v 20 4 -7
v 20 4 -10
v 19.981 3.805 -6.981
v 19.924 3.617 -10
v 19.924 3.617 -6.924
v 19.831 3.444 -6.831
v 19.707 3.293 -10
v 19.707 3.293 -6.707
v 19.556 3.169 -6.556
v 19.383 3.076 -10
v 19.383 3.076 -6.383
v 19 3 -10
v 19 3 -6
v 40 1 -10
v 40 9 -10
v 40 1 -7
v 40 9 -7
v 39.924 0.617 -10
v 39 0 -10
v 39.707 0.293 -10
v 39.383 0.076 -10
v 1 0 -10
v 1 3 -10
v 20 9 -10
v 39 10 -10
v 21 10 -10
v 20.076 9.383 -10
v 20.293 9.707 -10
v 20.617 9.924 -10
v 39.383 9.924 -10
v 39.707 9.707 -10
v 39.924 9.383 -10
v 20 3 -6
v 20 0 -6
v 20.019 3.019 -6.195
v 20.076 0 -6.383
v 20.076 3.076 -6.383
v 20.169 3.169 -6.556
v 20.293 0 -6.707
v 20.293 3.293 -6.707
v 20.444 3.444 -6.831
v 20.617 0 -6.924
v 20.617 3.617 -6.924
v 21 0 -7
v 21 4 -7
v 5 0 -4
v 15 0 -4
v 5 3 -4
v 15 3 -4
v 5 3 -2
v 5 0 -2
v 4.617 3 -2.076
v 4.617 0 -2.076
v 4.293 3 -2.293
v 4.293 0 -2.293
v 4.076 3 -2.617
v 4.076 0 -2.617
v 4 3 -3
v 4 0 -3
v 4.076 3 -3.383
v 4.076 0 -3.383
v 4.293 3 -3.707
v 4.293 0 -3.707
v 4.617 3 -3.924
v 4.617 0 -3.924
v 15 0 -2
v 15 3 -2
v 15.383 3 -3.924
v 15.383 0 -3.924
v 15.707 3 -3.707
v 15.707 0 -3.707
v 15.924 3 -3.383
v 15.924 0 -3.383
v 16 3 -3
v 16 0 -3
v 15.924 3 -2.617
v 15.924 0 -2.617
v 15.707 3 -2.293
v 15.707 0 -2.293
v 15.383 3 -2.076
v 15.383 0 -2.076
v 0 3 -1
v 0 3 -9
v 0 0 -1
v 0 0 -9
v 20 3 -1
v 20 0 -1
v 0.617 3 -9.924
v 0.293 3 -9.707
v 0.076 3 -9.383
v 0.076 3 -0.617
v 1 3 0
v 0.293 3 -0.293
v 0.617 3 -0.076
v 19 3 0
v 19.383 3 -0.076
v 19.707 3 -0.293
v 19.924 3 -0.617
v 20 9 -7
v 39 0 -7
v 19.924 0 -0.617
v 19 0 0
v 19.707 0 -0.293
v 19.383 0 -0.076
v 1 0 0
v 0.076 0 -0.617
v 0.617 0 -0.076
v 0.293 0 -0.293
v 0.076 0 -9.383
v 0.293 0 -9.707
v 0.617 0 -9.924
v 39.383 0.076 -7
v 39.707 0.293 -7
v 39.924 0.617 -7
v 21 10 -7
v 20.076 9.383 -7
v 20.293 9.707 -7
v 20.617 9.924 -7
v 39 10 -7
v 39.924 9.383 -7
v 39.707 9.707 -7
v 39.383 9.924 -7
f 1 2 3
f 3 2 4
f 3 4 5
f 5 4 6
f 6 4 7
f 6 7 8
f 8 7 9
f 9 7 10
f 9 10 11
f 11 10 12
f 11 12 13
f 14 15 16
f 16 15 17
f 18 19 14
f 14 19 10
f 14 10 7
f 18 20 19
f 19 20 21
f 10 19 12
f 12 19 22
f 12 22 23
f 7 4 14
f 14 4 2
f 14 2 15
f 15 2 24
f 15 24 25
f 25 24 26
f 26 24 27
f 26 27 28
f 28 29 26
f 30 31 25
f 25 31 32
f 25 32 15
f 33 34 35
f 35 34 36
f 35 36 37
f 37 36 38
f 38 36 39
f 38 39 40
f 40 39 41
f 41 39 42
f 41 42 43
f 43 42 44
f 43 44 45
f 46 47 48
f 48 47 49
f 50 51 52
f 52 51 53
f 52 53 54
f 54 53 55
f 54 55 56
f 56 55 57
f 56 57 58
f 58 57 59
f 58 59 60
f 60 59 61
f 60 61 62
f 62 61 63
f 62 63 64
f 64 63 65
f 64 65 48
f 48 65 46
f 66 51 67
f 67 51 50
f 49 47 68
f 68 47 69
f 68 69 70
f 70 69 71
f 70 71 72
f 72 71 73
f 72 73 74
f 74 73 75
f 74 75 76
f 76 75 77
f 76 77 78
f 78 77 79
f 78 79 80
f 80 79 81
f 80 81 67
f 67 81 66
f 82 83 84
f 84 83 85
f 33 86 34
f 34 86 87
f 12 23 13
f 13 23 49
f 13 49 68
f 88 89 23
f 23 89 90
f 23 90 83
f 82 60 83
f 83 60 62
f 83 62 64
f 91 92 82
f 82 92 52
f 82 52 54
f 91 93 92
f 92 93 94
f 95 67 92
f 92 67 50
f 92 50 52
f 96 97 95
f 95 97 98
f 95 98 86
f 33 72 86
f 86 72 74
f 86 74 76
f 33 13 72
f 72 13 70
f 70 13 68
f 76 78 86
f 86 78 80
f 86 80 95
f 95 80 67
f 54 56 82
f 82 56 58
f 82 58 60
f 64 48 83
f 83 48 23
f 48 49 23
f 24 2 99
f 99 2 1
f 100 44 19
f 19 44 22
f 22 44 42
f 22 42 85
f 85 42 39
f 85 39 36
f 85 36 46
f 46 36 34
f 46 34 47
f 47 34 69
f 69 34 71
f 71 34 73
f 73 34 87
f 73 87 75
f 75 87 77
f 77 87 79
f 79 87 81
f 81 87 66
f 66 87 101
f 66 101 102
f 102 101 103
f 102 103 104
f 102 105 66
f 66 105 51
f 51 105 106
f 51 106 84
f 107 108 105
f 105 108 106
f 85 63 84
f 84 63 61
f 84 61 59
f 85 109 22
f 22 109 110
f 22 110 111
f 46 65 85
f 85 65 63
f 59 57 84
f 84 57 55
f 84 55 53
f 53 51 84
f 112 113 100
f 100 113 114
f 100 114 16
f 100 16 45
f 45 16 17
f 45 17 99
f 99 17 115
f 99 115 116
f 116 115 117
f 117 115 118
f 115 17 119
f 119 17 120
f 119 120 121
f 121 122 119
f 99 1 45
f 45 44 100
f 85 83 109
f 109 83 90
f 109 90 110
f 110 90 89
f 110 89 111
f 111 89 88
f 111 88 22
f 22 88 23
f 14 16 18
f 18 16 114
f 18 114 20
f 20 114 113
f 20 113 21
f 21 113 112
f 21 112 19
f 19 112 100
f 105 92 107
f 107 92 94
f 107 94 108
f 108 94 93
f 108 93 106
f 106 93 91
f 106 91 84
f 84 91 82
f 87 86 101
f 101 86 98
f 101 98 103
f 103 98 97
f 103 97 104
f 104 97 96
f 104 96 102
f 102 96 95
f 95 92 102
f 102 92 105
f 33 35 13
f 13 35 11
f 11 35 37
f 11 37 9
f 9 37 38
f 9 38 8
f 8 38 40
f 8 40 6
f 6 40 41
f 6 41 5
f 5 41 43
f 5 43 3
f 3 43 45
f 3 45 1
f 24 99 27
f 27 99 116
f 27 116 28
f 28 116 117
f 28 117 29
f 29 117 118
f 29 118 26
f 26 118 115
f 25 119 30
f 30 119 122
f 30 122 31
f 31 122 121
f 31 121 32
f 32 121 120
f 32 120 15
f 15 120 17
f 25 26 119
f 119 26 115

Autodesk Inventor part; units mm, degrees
ref_plane "YZ Plane" through (0, 0, 0) normal (1, 0, 0) x (0, 1, 0)
ref_plane "XZ Plane" through (0, 0, 0) normal (0, 1, 0) x (-1, 0, 0)
ref_plane "XY Plane" through (0, 0, 0) normal (0, 0, 1) x (1, 0, 0)
sketch "Sketch1" plane through (0, 0, 0) normal (0, 1, 0) x (-1, 0, 0)
  line L0 (0, 0) -> (-20, 0)
  line L1 (-20, 0) -> (-20, -10)
  line L2 (-20, -10) -> (0, -10)
  line L3 (0, -10) -> (0, 0)
  line L4 (-15, -3) -> (-5, -3) construction
  line L5 (-15, -4) -> (-5, -4)
  line L6 (-5, -2) -> (-15, -2)
  arc A0 (-15, -2) -> (-15, -4) centre (-15, -3) ccw
  arc A1 (-5, -4) -> (-5, -2) centre (-5, -3) ccw
  point P0 (-10, -3)
  point P1 (-10, -10)
  point P2 (-20, -5)
  dimension "d0" = 20
  dimension "d1" = 10
  dimension "d2" = 2
  dimension "d3" = 10
  dimension "d10" = 2
extrude "Extrusion1" add sketch "Sketch1" along normal blind 3
sketch "Sketch2" plane through (20, 0, -10) normal (0, 0, -1) x (-1, 0, 0)
  line L0 (0, 0) -> (0, 3) projected
  line L1 (0, 0) -> (-20, 0)
  line L2 (-20, 0) -> (-20, 10)
  line L3 (-20, 10) -> (0, 10)
  line L4 (0, 10) -> (0, 0)
  point P0 (20, 0)
  point P1 (0, 3)
  dimension "d6" = 10
  dimension "d7" = 20
extrude "Extrusion2" add sketch "Sketch2" against normal blind 3
fillet "Fillet1" radius 1 5 edges at (0, 1.5, -10) (0, 1.5, 0) (20, 1.5, 0) (20, 3, -8.5) (20, 1.5, -7)
fillet "Fillet2" radius 1 2 edges at (19.5, 3, -7) (20.5, 3, -7)
fillet "Fillet3" radius 1 3 edges at (20, 10, -8.5) (40, 10, -8.5) (40, 0, -8.5)
properties part number "servo attachment"
